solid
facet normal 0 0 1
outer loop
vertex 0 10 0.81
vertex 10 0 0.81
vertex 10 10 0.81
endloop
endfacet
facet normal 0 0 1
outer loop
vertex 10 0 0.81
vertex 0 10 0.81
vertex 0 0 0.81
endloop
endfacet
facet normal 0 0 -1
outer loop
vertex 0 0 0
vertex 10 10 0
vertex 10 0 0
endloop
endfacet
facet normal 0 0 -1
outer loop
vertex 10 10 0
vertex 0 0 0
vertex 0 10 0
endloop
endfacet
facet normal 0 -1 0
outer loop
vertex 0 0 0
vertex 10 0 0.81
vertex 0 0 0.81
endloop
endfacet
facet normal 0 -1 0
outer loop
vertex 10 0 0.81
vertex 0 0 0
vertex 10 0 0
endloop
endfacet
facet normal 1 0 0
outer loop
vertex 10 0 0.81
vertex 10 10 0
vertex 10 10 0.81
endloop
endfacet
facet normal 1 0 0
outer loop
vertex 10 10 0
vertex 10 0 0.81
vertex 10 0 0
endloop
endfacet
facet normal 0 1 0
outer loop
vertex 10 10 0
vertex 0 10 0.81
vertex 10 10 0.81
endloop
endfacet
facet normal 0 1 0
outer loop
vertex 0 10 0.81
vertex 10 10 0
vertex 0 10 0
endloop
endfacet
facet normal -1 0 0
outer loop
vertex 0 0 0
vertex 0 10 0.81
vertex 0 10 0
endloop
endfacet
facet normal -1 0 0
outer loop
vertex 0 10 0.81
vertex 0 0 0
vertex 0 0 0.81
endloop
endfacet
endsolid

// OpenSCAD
/* Warning, this is a very basic generator with a lot of approximation 
input data : [TFLGA, 4NW, 10x10x0.81mm, 88, , B, C04-00593B]
generated by com.zoubworld.electronics.cad.model3d.Basic
Date : Sun Feb 15 10:50:49 CET 2026
*/

//body
color("black")
translate([0,0,0])
cube([10.0,10.0,0.81], center=false);
